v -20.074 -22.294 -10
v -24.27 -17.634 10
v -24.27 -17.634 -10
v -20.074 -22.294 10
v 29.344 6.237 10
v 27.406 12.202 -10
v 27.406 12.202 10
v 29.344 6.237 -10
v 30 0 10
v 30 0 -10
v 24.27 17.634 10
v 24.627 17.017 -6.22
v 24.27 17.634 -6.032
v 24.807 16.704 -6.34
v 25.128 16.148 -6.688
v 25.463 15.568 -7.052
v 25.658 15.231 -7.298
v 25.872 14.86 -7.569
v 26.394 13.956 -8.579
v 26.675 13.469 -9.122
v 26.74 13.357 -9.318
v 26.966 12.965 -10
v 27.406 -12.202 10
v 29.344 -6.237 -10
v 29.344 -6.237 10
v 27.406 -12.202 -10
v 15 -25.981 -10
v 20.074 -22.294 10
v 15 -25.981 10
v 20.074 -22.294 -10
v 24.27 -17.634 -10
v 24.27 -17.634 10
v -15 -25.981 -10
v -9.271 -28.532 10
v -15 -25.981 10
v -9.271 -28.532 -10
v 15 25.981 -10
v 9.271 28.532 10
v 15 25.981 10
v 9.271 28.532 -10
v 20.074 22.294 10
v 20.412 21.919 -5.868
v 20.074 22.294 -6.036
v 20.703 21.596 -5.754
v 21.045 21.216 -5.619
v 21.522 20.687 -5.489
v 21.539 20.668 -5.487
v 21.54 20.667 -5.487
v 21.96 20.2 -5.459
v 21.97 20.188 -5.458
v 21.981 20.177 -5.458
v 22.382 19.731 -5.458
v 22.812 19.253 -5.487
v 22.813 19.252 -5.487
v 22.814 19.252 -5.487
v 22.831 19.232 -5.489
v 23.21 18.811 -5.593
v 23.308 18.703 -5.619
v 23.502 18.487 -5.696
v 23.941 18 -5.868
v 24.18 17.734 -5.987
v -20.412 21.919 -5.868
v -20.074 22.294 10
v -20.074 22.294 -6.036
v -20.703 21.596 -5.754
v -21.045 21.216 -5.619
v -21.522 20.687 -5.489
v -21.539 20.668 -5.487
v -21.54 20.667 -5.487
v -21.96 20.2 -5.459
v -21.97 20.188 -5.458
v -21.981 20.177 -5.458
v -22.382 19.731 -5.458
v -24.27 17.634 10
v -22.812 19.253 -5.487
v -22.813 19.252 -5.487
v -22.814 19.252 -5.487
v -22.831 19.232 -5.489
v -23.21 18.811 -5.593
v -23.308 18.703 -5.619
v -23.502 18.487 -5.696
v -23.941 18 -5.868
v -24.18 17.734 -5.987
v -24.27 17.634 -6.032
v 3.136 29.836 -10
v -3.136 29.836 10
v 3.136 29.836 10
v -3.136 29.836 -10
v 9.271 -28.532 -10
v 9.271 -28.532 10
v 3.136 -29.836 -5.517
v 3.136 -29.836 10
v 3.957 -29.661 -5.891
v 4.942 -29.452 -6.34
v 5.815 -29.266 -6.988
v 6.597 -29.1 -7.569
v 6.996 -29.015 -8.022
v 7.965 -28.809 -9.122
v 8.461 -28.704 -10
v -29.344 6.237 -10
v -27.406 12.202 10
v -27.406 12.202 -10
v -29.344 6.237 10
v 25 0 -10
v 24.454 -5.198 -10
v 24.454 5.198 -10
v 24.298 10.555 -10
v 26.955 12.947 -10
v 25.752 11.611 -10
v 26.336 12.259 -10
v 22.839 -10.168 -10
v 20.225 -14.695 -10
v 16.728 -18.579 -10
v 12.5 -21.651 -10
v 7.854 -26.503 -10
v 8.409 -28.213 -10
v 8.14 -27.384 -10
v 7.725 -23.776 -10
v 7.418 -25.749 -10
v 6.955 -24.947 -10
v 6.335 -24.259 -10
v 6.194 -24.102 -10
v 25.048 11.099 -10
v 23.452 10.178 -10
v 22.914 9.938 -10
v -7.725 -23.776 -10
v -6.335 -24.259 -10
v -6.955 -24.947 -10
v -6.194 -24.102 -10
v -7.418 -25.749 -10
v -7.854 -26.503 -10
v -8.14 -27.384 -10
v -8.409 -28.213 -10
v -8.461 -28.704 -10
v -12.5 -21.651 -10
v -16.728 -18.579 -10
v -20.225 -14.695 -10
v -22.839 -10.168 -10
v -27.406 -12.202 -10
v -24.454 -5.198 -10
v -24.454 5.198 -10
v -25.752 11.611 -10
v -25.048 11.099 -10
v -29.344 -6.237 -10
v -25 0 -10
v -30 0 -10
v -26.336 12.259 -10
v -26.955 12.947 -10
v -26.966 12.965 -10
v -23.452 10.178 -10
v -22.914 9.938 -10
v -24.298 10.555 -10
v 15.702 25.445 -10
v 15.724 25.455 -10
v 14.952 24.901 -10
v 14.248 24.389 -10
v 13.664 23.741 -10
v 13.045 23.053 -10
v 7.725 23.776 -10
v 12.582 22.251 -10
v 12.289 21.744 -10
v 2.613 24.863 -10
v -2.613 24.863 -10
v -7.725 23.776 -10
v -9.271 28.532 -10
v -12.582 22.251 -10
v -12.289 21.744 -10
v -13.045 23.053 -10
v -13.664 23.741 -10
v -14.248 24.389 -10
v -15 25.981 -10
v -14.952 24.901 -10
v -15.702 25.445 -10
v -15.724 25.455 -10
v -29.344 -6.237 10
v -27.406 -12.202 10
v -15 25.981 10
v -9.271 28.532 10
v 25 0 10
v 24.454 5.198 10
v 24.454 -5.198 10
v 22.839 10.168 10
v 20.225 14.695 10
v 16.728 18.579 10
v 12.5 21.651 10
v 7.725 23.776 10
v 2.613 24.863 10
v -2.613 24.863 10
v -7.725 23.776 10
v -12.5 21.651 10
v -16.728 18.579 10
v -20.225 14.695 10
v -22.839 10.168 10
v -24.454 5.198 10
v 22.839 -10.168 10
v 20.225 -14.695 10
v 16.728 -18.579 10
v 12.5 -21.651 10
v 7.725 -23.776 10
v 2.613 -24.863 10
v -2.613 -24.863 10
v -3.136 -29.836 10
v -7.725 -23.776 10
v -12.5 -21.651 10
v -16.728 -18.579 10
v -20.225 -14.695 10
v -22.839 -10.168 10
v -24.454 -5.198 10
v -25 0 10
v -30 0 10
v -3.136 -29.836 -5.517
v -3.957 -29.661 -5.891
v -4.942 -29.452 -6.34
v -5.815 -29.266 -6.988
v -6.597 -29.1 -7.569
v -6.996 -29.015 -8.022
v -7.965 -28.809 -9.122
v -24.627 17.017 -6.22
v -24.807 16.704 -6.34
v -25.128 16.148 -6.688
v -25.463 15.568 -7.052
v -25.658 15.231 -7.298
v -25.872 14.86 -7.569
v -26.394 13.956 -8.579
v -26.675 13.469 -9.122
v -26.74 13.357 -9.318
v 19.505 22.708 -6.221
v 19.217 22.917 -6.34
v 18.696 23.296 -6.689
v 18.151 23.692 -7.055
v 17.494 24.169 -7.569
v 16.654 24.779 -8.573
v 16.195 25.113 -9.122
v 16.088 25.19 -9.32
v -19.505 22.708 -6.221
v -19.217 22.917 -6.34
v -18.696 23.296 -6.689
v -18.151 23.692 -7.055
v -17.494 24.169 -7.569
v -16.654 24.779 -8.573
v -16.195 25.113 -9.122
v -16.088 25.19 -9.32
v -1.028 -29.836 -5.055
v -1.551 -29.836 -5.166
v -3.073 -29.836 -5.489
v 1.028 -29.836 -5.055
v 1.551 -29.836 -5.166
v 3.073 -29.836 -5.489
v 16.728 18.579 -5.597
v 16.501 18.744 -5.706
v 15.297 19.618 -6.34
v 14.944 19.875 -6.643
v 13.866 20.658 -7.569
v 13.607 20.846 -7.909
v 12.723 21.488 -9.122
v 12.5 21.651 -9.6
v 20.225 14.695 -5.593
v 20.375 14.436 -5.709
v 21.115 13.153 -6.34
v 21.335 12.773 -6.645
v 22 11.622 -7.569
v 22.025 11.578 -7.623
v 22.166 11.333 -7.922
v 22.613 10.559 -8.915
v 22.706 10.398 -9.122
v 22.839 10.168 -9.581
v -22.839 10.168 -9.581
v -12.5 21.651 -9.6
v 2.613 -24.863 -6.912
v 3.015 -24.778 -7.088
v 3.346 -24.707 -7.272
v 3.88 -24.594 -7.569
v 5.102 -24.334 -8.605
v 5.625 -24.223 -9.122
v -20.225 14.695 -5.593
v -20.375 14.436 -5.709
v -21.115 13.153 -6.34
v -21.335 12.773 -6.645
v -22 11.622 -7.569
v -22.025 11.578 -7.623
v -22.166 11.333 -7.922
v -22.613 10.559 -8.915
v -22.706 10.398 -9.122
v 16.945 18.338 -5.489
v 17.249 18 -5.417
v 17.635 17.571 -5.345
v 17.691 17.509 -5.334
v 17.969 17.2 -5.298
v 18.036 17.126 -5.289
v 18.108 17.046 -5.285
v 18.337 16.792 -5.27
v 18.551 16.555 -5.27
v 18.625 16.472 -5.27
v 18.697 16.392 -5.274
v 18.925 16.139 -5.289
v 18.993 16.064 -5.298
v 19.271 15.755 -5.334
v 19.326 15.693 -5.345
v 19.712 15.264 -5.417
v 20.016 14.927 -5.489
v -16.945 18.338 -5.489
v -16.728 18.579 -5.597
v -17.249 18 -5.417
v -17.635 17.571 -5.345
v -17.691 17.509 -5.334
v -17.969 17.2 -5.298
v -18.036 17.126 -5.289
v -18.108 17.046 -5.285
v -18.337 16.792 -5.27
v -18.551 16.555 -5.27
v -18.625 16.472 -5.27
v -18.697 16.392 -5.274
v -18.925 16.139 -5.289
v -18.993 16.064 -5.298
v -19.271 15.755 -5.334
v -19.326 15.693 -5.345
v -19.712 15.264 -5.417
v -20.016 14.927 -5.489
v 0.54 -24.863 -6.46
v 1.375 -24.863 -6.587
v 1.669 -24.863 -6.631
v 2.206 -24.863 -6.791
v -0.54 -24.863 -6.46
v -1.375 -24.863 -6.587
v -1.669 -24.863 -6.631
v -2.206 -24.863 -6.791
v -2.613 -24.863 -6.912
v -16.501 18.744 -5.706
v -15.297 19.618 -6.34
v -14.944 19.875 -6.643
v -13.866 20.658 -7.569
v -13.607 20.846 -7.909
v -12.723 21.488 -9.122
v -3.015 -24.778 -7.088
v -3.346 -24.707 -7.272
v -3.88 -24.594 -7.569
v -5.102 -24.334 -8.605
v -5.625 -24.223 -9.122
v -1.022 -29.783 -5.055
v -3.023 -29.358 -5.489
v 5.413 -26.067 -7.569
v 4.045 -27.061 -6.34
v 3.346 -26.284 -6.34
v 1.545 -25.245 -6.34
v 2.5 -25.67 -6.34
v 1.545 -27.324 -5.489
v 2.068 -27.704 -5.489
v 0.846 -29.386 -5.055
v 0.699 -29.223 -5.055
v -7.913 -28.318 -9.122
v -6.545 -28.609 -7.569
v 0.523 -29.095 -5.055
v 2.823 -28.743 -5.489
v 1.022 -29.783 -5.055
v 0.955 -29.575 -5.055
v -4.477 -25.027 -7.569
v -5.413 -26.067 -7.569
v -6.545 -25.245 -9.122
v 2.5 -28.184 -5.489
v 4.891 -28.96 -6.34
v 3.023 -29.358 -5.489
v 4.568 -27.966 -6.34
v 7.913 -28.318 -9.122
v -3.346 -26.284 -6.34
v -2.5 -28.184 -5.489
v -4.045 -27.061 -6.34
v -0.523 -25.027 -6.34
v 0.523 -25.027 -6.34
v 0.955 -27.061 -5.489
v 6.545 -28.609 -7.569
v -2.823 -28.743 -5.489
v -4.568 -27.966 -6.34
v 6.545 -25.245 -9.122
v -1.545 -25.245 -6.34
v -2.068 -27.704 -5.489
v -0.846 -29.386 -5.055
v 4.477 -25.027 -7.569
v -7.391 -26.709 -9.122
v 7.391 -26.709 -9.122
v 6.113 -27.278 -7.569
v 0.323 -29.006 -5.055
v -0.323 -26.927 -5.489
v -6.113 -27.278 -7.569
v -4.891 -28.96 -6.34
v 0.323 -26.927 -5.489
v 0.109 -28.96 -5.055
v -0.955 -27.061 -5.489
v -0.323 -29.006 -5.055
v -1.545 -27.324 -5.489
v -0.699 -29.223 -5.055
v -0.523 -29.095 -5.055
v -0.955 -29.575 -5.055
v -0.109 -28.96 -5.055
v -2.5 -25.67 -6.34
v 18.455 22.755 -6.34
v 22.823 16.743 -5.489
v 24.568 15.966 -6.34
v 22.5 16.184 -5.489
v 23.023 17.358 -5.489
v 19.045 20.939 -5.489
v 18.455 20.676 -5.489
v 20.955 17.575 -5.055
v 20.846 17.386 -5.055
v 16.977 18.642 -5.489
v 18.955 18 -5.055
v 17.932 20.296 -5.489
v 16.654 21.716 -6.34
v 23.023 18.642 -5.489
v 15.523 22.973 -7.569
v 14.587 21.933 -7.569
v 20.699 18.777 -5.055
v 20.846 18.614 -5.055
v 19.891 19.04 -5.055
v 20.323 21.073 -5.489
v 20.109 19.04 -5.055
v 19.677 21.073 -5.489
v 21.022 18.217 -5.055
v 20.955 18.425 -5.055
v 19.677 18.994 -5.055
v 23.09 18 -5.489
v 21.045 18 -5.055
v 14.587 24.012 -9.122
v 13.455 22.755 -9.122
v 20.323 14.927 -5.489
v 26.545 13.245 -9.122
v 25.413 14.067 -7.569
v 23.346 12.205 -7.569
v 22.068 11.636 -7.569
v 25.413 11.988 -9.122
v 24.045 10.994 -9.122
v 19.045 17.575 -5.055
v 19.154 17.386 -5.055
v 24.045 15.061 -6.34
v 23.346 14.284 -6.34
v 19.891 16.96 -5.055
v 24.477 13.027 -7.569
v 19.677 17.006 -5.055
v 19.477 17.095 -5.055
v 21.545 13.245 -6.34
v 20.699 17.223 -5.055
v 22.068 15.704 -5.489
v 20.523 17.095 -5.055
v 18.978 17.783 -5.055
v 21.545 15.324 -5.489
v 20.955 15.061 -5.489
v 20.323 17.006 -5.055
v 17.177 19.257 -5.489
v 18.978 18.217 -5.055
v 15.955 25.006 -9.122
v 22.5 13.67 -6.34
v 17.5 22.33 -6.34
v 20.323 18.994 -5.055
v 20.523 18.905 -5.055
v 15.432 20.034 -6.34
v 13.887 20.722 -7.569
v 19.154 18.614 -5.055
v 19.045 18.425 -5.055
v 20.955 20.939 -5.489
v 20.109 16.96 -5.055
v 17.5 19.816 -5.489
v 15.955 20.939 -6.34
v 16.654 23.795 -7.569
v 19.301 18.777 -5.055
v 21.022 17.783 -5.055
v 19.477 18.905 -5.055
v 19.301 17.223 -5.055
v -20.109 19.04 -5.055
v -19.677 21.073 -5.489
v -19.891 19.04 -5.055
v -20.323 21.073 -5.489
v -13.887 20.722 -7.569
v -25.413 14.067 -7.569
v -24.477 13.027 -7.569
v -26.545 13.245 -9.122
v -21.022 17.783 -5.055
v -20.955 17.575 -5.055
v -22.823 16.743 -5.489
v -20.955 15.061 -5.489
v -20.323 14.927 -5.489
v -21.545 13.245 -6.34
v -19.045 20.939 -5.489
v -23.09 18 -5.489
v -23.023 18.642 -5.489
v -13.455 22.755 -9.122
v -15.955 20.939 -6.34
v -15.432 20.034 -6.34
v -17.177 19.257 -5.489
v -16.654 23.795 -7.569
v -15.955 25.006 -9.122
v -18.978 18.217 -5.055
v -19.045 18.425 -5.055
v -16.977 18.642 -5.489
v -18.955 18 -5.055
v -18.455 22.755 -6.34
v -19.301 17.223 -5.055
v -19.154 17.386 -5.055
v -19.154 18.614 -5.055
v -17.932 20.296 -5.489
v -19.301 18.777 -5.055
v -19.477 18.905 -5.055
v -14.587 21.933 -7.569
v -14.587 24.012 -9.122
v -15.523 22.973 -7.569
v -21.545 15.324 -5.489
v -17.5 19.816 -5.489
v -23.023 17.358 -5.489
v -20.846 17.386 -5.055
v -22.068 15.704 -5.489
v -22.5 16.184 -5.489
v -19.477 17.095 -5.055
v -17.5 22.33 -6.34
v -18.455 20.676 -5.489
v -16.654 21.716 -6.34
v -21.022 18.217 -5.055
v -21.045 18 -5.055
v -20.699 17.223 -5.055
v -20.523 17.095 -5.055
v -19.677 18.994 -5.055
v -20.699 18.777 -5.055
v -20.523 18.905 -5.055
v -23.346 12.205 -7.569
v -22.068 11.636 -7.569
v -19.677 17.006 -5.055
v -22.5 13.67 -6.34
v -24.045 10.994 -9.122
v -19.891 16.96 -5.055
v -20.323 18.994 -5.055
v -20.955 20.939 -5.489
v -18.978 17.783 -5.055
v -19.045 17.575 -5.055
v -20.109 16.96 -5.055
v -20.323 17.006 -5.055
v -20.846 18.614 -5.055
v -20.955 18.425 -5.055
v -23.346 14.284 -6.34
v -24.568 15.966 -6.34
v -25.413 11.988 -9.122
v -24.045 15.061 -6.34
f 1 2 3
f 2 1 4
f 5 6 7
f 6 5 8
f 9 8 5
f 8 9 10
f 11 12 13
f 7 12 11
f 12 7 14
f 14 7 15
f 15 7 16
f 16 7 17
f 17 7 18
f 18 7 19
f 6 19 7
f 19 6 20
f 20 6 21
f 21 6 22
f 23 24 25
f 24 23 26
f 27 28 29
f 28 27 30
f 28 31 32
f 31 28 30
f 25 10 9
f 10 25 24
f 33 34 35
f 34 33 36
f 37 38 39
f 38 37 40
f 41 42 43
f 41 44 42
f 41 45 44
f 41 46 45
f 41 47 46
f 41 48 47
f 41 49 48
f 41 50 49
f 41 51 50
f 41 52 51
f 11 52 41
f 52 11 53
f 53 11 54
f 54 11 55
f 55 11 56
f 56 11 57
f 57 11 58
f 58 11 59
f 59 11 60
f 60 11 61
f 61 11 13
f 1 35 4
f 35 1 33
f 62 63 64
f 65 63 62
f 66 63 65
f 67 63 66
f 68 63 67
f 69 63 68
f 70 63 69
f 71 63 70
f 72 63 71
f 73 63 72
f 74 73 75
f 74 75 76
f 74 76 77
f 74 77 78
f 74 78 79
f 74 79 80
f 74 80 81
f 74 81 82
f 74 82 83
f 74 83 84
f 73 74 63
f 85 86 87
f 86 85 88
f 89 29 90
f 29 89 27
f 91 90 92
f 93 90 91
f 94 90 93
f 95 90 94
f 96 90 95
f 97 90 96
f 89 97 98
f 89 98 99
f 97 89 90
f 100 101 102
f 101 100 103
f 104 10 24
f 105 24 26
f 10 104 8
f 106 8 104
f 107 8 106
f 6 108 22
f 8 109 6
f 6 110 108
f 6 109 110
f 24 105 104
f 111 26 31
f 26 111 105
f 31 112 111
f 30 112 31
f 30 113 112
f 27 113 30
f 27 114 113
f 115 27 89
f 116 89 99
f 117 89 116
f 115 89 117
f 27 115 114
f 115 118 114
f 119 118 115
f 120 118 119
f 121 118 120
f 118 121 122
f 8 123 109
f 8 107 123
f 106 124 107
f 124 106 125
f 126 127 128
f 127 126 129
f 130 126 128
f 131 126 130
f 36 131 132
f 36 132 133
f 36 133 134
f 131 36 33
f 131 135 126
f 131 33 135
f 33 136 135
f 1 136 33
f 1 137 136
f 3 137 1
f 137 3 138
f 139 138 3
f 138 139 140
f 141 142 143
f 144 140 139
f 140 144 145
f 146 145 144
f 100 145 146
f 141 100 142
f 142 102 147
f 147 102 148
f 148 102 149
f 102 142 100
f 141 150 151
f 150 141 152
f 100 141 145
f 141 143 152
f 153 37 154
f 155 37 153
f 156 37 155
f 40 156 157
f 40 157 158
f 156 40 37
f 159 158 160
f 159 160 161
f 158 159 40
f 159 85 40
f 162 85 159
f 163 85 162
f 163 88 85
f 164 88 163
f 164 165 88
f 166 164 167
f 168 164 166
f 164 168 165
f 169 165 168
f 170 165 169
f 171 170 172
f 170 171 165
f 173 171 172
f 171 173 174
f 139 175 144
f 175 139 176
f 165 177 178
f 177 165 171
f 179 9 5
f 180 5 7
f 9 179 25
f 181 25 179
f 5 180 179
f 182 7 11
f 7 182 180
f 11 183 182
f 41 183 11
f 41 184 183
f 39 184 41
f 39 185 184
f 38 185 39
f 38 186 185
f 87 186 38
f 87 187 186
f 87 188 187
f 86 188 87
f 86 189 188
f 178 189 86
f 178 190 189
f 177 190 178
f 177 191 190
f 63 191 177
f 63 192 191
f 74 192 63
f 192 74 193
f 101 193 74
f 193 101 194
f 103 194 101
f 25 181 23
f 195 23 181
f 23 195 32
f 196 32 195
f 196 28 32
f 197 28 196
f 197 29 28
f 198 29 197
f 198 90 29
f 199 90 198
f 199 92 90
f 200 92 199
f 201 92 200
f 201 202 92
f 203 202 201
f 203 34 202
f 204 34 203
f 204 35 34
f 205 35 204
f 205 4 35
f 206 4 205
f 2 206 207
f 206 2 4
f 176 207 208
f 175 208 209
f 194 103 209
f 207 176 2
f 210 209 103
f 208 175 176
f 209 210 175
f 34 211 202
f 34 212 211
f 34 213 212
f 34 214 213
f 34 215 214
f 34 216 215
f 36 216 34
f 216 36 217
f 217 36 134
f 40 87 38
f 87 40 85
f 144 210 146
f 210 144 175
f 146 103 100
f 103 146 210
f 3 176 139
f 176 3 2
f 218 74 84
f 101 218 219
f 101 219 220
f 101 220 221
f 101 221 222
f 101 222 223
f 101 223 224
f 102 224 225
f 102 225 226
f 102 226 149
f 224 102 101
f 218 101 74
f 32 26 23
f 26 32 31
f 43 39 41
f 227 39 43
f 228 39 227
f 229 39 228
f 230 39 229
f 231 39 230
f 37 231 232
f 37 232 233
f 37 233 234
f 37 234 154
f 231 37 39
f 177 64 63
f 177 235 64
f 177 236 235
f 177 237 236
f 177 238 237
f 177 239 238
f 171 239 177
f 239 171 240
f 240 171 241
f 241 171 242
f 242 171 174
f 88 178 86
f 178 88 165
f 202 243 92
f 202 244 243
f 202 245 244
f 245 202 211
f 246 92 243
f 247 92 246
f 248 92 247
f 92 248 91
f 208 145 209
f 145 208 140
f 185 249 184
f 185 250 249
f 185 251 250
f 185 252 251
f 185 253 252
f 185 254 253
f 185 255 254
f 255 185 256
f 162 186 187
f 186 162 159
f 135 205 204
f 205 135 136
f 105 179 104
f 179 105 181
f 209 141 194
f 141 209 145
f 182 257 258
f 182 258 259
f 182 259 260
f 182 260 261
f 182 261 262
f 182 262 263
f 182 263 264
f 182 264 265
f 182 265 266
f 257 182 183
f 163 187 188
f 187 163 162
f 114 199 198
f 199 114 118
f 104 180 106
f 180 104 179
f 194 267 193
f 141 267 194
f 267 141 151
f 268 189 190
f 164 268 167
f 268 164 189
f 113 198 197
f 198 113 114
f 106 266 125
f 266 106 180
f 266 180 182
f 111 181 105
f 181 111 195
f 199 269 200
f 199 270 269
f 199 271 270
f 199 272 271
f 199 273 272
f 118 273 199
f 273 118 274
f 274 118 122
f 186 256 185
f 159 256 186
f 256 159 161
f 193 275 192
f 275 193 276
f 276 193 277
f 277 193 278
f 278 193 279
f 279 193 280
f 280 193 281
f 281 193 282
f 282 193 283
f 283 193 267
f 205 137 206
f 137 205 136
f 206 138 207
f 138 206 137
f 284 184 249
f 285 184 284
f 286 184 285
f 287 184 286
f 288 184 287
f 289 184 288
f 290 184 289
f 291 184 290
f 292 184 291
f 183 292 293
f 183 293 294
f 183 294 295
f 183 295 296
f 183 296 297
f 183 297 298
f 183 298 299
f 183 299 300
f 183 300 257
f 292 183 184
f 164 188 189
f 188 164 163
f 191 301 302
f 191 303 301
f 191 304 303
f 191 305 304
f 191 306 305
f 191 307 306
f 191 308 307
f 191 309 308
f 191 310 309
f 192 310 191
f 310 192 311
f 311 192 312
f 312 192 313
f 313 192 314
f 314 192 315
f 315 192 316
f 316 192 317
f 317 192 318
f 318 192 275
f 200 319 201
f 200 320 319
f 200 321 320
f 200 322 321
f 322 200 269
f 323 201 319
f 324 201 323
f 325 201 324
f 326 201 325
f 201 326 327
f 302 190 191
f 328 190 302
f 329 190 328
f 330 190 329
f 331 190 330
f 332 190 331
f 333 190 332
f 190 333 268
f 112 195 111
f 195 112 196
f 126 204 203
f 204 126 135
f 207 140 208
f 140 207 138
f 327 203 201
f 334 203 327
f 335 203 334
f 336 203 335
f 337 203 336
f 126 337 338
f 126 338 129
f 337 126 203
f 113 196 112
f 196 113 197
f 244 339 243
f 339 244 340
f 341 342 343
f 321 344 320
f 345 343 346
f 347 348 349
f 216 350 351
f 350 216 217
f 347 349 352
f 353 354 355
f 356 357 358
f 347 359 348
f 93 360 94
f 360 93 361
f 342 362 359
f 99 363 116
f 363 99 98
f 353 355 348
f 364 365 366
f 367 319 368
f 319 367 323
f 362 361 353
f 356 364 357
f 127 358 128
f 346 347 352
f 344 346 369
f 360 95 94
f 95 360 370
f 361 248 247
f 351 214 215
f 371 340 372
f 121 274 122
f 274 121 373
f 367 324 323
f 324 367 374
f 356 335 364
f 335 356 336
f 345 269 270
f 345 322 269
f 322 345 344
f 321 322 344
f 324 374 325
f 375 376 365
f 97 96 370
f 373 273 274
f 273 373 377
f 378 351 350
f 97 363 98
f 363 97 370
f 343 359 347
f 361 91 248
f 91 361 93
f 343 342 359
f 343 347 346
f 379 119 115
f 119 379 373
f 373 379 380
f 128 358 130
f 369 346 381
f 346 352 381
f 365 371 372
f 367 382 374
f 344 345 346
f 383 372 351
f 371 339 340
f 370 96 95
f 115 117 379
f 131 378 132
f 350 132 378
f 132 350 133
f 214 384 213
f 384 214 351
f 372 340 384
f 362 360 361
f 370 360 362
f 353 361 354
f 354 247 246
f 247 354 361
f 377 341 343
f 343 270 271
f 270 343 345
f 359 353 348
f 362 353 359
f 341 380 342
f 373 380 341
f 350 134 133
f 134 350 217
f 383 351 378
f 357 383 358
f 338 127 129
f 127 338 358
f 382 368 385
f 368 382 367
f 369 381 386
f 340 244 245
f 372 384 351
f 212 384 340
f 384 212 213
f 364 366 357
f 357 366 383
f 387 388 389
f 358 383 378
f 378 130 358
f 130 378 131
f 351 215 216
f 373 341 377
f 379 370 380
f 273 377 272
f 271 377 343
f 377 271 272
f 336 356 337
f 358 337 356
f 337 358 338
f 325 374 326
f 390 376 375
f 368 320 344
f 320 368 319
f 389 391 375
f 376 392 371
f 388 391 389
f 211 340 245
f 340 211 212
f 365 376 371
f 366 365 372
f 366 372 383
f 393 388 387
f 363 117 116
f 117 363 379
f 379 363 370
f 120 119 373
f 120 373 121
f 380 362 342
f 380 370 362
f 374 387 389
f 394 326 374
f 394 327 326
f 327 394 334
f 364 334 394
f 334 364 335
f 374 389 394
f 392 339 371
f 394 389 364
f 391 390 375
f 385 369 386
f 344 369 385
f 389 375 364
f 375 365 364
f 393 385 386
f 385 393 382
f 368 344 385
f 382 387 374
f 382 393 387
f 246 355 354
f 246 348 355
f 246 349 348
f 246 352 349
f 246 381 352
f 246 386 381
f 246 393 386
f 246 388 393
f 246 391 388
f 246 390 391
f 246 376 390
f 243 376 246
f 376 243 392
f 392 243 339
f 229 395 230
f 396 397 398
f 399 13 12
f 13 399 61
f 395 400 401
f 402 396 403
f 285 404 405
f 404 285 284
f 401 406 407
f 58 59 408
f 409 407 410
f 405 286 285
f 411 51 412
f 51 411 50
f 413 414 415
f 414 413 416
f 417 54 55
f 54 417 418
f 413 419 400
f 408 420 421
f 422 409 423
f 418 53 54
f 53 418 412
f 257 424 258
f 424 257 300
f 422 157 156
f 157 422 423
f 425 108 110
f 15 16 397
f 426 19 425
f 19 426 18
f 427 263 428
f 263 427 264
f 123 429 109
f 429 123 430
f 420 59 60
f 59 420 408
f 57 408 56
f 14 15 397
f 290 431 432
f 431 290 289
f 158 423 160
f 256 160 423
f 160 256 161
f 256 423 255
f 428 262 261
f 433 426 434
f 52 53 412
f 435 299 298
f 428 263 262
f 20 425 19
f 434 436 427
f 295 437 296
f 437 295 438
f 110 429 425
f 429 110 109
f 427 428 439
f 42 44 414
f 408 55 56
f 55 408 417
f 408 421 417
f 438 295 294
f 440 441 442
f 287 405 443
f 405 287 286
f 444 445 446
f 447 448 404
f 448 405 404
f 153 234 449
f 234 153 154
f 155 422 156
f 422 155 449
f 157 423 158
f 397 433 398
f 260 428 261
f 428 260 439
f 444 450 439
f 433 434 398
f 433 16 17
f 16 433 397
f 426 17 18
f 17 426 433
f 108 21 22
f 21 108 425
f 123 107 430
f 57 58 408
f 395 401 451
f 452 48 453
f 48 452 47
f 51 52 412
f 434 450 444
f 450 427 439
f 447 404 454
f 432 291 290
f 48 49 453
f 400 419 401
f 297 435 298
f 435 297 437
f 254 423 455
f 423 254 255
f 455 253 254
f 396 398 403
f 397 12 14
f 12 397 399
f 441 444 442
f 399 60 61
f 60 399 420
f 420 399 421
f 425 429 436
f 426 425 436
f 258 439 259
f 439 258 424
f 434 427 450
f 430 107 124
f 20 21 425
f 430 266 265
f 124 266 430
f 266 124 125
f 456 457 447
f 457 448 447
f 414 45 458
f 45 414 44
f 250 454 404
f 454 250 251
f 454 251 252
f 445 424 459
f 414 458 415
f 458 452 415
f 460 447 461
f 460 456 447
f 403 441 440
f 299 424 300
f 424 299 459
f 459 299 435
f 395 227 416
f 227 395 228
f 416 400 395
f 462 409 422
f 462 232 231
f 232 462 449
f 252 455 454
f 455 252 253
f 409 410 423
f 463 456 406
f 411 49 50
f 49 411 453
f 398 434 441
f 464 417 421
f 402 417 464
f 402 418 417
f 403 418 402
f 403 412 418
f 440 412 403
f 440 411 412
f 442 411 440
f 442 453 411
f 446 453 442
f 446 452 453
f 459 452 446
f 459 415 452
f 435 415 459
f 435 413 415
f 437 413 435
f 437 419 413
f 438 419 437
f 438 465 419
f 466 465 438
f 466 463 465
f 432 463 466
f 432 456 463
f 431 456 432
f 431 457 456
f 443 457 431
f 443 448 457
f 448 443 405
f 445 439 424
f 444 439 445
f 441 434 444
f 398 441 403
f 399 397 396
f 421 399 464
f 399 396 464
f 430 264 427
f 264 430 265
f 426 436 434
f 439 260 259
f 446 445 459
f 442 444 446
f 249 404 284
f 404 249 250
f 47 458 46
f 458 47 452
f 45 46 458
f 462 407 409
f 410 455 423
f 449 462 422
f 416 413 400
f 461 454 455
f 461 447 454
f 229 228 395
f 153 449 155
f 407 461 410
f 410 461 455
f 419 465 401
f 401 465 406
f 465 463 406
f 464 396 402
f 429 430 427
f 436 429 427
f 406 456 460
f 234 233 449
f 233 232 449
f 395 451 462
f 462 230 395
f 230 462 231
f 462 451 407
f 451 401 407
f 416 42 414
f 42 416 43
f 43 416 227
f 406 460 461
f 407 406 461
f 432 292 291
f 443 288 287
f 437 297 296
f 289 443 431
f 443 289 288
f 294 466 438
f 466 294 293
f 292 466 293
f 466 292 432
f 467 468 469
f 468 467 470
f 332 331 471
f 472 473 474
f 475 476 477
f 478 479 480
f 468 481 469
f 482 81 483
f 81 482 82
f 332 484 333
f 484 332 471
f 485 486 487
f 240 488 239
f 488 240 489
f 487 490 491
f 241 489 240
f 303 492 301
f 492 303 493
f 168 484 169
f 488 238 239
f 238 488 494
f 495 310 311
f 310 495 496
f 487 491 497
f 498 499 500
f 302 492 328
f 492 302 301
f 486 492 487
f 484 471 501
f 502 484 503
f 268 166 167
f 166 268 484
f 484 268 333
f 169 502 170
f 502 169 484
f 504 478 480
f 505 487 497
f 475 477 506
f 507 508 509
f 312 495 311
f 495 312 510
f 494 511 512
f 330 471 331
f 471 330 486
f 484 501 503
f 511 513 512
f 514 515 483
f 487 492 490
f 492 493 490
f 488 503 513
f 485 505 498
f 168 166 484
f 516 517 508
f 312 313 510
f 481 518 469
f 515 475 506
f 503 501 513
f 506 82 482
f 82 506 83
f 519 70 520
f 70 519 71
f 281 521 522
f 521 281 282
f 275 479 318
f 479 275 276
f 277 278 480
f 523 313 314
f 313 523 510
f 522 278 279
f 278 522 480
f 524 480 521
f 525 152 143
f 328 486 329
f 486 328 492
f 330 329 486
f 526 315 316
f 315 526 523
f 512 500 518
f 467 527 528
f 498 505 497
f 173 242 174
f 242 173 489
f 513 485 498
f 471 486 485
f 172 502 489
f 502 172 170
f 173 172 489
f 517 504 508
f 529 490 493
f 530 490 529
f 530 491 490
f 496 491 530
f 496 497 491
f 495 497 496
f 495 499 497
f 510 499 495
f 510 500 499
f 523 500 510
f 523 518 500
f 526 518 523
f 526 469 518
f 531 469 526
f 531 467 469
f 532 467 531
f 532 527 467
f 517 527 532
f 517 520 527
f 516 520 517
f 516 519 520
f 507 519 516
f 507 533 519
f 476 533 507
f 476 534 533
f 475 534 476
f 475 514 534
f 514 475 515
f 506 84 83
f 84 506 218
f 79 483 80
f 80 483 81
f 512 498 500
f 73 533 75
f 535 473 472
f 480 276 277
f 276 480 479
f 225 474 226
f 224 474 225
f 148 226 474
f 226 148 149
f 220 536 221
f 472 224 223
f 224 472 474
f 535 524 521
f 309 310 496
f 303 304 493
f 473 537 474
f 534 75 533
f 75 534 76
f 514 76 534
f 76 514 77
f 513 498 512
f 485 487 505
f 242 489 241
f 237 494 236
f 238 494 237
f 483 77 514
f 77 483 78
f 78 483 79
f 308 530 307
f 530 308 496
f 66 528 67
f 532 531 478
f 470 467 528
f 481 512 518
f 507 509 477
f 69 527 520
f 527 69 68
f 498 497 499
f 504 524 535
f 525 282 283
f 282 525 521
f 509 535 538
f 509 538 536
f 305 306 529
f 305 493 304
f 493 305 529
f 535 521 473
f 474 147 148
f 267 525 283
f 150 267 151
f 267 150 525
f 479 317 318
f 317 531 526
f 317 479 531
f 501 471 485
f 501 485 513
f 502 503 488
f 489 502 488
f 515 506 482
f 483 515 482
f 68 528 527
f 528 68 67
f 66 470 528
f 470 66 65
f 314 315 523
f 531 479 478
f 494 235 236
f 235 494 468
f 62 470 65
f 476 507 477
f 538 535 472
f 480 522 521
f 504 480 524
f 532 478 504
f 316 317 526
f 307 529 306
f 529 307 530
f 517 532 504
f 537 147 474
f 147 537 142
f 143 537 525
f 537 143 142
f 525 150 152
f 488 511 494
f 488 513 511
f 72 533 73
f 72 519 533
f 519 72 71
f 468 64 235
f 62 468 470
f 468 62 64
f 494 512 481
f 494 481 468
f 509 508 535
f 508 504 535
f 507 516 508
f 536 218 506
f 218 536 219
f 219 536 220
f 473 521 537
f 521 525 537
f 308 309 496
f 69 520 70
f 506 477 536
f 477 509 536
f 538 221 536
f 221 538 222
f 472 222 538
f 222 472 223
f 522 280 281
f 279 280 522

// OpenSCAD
$fn=30;

diameter=30;
outer_ring_width=5;
ring_height=20;

difference() {
  difference() {
    cylinder(r=diameter, h=ring_height, center=true);
    #cylinder(r=(diameter - outer_ring_width), h=ring_height, center=true);
  }

  union() {
    translate([0, -diameter, -(ring_height - 5)])
    #sphere(r=outer_ring_width * 2);

    translate([20, 18, -(ring_height - 5)])
    #sphere(r=outer_ring_width * 2);

    translate([-20, 18, -(ring_height - 5)])
    #sphere(r=outer_ring_width * 2);
  }
}
